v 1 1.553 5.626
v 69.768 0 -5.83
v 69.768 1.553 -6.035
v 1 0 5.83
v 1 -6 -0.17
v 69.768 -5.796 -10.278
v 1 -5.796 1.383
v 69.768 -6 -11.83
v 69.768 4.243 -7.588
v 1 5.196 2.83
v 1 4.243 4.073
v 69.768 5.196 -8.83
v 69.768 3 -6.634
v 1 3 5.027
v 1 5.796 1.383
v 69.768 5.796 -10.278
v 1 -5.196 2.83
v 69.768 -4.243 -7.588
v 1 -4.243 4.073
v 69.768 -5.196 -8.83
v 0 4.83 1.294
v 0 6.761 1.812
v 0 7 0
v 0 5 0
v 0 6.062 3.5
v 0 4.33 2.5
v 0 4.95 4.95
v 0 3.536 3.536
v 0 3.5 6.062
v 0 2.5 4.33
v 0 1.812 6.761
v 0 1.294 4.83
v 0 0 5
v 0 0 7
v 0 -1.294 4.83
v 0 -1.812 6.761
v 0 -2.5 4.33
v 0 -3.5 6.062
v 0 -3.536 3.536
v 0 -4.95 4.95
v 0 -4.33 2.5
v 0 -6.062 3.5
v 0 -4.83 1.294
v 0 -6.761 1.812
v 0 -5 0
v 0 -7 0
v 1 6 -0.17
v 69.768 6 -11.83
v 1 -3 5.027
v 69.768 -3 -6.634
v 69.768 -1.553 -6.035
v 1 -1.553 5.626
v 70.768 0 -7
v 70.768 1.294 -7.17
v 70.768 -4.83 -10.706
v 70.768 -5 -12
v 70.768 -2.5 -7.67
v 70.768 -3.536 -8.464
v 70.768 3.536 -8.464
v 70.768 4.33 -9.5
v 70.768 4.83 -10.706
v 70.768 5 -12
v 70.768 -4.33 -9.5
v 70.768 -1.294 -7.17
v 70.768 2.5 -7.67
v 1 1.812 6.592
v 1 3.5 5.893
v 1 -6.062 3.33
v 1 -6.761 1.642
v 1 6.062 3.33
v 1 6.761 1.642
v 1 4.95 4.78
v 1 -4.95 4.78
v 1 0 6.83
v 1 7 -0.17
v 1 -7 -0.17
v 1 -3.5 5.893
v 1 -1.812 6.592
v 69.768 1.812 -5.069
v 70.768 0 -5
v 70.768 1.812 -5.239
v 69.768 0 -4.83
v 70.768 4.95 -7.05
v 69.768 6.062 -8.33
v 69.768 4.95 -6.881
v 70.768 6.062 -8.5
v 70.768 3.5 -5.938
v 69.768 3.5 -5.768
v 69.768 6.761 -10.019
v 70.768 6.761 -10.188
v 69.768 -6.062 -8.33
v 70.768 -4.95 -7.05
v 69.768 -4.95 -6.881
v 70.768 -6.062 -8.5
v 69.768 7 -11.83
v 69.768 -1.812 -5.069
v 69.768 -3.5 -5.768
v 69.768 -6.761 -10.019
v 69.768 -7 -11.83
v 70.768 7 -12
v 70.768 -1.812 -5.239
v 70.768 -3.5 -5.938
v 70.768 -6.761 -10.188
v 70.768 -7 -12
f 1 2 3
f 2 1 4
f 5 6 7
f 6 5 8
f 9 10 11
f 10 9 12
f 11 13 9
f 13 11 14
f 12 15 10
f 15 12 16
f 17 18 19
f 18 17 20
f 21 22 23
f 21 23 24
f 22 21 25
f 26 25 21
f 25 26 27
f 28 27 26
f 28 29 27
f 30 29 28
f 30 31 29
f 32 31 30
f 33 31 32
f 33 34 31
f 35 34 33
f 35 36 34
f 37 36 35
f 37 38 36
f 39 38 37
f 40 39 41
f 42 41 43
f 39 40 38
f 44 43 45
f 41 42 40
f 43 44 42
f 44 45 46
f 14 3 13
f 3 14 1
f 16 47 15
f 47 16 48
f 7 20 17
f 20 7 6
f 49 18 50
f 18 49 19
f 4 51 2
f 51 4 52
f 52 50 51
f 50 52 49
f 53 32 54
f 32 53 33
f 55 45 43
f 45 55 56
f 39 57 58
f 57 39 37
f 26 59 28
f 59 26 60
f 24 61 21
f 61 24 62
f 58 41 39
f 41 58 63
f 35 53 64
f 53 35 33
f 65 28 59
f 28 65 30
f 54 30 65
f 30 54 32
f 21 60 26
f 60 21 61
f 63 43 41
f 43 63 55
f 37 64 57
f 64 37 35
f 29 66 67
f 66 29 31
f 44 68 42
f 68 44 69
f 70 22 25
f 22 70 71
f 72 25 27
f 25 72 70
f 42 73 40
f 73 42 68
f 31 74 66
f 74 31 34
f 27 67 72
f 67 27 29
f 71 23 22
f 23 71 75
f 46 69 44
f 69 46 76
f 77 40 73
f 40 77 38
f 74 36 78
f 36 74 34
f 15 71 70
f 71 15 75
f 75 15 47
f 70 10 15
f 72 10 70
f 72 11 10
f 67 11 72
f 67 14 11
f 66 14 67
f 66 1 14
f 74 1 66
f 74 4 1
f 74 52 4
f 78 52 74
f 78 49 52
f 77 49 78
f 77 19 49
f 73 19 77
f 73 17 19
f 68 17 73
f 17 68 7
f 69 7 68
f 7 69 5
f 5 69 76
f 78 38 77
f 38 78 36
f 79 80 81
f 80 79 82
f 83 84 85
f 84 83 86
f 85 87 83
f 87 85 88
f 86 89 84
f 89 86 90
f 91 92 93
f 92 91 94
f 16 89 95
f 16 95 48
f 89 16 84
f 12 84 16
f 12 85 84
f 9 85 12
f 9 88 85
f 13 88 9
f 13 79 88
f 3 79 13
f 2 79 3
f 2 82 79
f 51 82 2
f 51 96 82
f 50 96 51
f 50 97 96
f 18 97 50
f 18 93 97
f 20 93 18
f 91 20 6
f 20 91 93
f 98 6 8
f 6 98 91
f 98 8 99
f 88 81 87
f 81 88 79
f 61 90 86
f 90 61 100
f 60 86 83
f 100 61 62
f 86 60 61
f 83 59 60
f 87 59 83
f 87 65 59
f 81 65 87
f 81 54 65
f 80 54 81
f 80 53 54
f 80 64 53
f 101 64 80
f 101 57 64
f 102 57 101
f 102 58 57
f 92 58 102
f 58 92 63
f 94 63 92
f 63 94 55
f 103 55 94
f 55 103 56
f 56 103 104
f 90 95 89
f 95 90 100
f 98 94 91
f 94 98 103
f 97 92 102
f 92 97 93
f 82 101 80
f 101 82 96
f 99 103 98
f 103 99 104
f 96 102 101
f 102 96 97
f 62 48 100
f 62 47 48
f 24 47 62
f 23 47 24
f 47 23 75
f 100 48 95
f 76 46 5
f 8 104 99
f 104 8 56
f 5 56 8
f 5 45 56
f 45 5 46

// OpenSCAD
// file: ../build_environments.scad
// build_environments.scad: modules to build level sections
//

module pool(diameter=10.0, wall_height=2.0, step_width=3.0, connections=[])
{
    difference() {
        union() {
        difference() {
            cylinder(h=0.5,r1=diameter+step_width,r2=diameter+step_width,$fn=48);
            translate([0,0,-0.1])
                cylinder(h=0.7,r1=diameter,r2=diameter,$fn=48);
        }
        difference() {
            cylinder(h=wall_height,r1=diameter+step_width+1.0,r2=diameter+step_width+1.0,$fn=48);
            translate([0,0,-0.1])
                cylinder(h=wall_height+0.2,r1=diameter+step_width,r2=diameter+step_width,$fn=48);
        }
        }
    
        for (c = connections)
        {
            rotate([0,90,0]) {
                angle = atan2(c[1],c[0]);
                rotate([-angle,0,0]) {
                    cylinder(h=diameter+5.0,r1=c[2],r2=c[2],$fn=48);
                }
            }
        }
    }
}

module straight(length=10.0, width=2.0, dy1=0.0, dy2=0.0, dz=0.0)
{
    dims = [0, 0, 0, 0, 0, (dz/length)];
    matrix = [
        [ 1, dims[0], dims[1], 0 ],
        [ dims[2], 1, dims[4], 0 ],
        [ dims[5], dims[3], 1, 0 ],
        [ 0, 0, 0, 1 ]
    ];
    multmatrix(matrix)
    difference() {
        translate([dy1,0,0])
        union() {
            rotate([0,90,0]) {
                difference() {
                    cylinder(h=(length-dy1-dy2),r1=width+1.0,r2=width+1.0,$fn=24);
                    translate([0,0,-0.1])
                        cylinder(h=(length-dy1-dy2+0.2),r1=width,r2=width,$fn=24);
                }
                difference() {
                    cylinder(h=1.0,r1=width+2.0,r2=width+2.0,$fn=24);
                    translate([0,0,-0.1])
                        cylinder(h=1.2,r1=width,r2=width,$fn=24);
                }
                translate([0,0,(length-dy1-dy2)-1.0]) {
                    difference() {
                        cylinder(h=1.0,r1=width+2.0,r2=width+2.0,$fn=24);
                        translate([0,0,-0.1])
                            cylinder(h=1.2,r1=width,r2=width,$fn=24);
                    }
                }
            }
        }
        translate([0,0,-(2*width+4.0)/2])
            cube([3*length,3*length,2*width+4.0],center=true);
    }
}

module curve(p0=[0,0], center=[0,0], dir=1, angle=0.0, width=2.0)
{
    radius = sqrt((p0[0]-center[0])*(p0[0]-center[0]) + (p0[1]-center[1])*(p0[1]-center[1]));
    if (dir == 0) {
        difference() {
            rotate([0,0,-90])
            difference() {
                rotate_extrude(angle = angle, convexity = 10, $fn=32)
                    translate([radius, 0, 0])
                        circle(r = width+1.0,$fn=24);
                rotate([0,0,-1.0])
                    rotate_extrude(angle = angle+2.0, convexity = 10, $fn=32)
                        translate([radius, 0, 0])
                            circle(r = width,$fn=24);
            }
            translate([0,0,-(2*width+4.0)/2])
                cube([5*radius,5*radius,2*width+4.0],center=true);
        }
    }
    else {
        difference() {
            rotate([0,0,90])
            difference() {
                rotate_extrude(angle = -angle, convexity = 10, $fn=32)
                    translate([radius, 0, 0])
                        circle(r = width+1.0,$fn=24);
                rotate([0,0,1.0])
                    rotate_extrude(angle = -angle-2.0, convexity = 10, $fn=32)
                        translate([radius, 0, 0])
                            circle(r = width,$fn=24);
            }
            translate([0,0,-(2*width+4.0)/2])
                cube([5*radius,5*radius,2*width+4.0],center=true);
        }
    }

}

// test pool
//pool(diameter=12.0000, wall_height=3.0000, step_width=3.0000, connections=[[0.0000,-26.0000,2.0000], [23.6074,0.0000,2.0000]]);

// test straight, slope
//straight(length=26.0000, width=2.0000, dy1=11.8322, dy2=6.7082, dz=0.0000);
//straight(length=29.1549, width=12.0000, dy1=0.0000, dy2=0.0000, dz=-15.0000);

// test curve
//curve(p0=[23.6074, 0.0000], center=[23.6074, 5.0000], dir=0, angle=60.1011, width=2.0000);
//curve(p0=[33.6426, 12.4219], center=[37.9771, 9.9295], dir=1, angle=120.4627, width=2.0000);
// main file
use <../build_environments.scad>;
straight(length=70.7683, width=5.0000, dy1=0.0000, dy2=0.0000, dz=-12.0000);
